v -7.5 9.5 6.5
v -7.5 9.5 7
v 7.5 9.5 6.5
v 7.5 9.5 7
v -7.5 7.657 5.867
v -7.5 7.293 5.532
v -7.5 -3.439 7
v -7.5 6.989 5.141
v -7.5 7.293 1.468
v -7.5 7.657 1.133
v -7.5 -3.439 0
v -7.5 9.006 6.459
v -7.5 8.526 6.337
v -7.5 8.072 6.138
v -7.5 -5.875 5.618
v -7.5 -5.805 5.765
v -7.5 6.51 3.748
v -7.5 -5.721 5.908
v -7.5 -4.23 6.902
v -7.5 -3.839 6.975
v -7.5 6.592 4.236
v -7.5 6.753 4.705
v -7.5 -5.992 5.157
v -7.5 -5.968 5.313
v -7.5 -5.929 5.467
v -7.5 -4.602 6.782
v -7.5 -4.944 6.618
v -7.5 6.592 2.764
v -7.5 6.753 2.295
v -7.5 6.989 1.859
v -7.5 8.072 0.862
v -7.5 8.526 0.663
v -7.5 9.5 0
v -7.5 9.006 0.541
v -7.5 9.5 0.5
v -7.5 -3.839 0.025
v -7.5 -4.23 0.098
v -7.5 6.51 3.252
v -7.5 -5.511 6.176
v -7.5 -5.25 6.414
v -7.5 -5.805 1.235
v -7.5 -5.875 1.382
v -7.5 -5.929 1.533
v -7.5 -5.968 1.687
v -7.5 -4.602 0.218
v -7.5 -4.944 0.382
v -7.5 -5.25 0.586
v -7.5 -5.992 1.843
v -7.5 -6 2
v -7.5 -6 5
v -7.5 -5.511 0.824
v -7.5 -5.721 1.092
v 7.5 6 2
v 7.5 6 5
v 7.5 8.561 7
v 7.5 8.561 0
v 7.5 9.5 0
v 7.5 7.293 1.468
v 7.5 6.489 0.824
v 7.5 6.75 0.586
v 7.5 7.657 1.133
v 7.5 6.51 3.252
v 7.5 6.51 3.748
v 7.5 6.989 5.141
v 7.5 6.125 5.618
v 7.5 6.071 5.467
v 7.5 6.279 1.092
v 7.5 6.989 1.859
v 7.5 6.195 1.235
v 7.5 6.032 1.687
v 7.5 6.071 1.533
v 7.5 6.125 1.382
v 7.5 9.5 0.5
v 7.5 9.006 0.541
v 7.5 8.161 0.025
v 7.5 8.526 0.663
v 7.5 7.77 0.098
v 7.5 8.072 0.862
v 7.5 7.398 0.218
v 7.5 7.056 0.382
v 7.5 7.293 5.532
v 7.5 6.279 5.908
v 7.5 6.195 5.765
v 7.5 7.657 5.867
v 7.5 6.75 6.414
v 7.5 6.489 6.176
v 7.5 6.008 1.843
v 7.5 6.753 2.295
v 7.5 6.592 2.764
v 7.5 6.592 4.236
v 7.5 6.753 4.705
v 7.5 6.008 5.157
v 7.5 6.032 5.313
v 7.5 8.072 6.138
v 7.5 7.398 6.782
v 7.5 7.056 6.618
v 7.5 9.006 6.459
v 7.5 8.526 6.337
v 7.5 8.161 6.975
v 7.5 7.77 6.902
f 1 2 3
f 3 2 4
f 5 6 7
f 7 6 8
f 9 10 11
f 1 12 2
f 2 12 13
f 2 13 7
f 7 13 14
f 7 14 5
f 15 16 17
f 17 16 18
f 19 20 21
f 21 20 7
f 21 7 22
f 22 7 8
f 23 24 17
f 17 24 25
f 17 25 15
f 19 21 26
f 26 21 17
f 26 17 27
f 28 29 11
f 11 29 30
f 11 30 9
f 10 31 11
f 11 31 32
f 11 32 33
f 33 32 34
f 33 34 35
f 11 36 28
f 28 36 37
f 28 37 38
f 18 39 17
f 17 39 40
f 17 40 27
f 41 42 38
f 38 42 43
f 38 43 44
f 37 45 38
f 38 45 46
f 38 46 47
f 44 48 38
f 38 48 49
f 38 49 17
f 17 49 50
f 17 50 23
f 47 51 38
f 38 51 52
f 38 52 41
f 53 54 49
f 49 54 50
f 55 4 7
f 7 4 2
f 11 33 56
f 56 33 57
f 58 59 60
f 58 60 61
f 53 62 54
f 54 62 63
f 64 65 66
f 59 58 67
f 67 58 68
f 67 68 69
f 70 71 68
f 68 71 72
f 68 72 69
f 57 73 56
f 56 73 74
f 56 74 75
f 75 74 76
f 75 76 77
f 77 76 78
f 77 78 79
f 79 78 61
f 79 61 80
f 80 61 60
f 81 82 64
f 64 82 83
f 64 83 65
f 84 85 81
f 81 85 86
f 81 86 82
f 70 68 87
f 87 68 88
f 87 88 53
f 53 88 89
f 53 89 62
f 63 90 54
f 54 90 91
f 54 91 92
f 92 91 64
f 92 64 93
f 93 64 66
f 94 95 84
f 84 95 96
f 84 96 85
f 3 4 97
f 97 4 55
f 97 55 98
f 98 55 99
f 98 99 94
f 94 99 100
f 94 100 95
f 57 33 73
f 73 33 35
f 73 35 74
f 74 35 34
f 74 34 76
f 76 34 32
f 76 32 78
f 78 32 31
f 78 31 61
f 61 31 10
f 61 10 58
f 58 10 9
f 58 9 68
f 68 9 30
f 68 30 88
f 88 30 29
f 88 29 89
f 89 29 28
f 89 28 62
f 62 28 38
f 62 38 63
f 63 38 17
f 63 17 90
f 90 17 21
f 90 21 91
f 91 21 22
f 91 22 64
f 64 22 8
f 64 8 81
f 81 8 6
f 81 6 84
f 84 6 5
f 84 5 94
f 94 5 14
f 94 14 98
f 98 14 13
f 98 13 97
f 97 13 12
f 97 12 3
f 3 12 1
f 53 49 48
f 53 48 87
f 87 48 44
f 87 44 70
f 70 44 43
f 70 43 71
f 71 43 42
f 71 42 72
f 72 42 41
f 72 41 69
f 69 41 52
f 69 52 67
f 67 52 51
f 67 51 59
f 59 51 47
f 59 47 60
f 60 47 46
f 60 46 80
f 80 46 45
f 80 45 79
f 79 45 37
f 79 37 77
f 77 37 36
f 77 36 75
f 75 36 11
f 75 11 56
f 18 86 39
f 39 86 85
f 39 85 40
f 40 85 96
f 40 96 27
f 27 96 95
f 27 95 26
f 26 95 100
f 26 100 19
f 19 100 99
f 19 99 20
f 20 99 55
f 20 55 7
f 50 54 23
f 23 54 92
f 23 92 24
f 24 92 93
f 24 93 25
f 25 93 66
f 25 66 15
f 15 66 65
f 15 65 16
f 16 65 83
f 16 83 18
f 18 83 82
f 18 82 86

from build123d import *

# Parameters (mm, degrees)
BOSS_EXTRUDE1_DEPTH     = 7
SKETCH3_W               = 15
SKETCH3_H               = 7
BOSS_EXTRUDE2_DEPTH     = 3.5
CUT_EXTRUDE1_DEPTH      = 1
CUT_EXTRUDE1_DEPTH_BACK = 16
FILLET1_R               = 2


with BuildPart() as part:
    # Sketch1 → Boss-Extrude1 (new body)
    with BuildSketch(Plane.XY):
        Polygon((-7.5, -6), (7.5, 6), (-7.5, 6), align=None)
    extrude(amount=BOSS_EXTRUDE1_DEPTH)

    # Sketch3 → Boss-Extrude2 (add)
    with BuildSketch(Plane(origin=(0, 6, 0), x_dir=(1, 0, 0), z_dir=(0, 1, 0))):
        with Locations((0, -3.5)):
            Rectangle(SKETCH3_W, SKETCH3_H)
    extrude(amount=BOSS_EXTRUDE2_DEPTH)

    # Sketch4 → Cut-Extrude1 (cut, two sides)
    with BuildSketch(Plane(origin=(7.5, 0, 0), x_dir=(0, 0, -1), z_dir=(1, 0, 0))) as cut_extrude1_sk:
        with BuildLine():
            Line((-6.5, 53.115472628), (-6.5, 9.5))
            ThreePointArc((-6.5, 9.5), (-3.5, 6.5), (-0.5, 9.5))
            Line((-0.5, 9.5), (-0.5, 53.115472628))
            Line((-0.5, 53.115472628), (-0.5, 140.346417884))
            Line((-0.5, 140.346417884), (-6.5, 140.346417884))
            Line((-6.5, 140.346417884), (-6.5, 53.115472628))
        make_face()
    extrude(amount=CUT_EXTRUDE1_DEPTH, mode=Mode.SUBTRACT)
    extrude(cut_extrude1_sk.sketch, amount=-CUT_EXTRUDE1_DEPTH_BACK, mode=Mode.SUBTRACT)

    # Fillet1
    fillet1_edges = [part.edges().sort_by_distance(p)[0] for p in [
        (0, 0, 0),
        (0, 0, 7),
    ]]
    fillet(fillet1_edges, radius=FILLET1_R)


solid = part.part
